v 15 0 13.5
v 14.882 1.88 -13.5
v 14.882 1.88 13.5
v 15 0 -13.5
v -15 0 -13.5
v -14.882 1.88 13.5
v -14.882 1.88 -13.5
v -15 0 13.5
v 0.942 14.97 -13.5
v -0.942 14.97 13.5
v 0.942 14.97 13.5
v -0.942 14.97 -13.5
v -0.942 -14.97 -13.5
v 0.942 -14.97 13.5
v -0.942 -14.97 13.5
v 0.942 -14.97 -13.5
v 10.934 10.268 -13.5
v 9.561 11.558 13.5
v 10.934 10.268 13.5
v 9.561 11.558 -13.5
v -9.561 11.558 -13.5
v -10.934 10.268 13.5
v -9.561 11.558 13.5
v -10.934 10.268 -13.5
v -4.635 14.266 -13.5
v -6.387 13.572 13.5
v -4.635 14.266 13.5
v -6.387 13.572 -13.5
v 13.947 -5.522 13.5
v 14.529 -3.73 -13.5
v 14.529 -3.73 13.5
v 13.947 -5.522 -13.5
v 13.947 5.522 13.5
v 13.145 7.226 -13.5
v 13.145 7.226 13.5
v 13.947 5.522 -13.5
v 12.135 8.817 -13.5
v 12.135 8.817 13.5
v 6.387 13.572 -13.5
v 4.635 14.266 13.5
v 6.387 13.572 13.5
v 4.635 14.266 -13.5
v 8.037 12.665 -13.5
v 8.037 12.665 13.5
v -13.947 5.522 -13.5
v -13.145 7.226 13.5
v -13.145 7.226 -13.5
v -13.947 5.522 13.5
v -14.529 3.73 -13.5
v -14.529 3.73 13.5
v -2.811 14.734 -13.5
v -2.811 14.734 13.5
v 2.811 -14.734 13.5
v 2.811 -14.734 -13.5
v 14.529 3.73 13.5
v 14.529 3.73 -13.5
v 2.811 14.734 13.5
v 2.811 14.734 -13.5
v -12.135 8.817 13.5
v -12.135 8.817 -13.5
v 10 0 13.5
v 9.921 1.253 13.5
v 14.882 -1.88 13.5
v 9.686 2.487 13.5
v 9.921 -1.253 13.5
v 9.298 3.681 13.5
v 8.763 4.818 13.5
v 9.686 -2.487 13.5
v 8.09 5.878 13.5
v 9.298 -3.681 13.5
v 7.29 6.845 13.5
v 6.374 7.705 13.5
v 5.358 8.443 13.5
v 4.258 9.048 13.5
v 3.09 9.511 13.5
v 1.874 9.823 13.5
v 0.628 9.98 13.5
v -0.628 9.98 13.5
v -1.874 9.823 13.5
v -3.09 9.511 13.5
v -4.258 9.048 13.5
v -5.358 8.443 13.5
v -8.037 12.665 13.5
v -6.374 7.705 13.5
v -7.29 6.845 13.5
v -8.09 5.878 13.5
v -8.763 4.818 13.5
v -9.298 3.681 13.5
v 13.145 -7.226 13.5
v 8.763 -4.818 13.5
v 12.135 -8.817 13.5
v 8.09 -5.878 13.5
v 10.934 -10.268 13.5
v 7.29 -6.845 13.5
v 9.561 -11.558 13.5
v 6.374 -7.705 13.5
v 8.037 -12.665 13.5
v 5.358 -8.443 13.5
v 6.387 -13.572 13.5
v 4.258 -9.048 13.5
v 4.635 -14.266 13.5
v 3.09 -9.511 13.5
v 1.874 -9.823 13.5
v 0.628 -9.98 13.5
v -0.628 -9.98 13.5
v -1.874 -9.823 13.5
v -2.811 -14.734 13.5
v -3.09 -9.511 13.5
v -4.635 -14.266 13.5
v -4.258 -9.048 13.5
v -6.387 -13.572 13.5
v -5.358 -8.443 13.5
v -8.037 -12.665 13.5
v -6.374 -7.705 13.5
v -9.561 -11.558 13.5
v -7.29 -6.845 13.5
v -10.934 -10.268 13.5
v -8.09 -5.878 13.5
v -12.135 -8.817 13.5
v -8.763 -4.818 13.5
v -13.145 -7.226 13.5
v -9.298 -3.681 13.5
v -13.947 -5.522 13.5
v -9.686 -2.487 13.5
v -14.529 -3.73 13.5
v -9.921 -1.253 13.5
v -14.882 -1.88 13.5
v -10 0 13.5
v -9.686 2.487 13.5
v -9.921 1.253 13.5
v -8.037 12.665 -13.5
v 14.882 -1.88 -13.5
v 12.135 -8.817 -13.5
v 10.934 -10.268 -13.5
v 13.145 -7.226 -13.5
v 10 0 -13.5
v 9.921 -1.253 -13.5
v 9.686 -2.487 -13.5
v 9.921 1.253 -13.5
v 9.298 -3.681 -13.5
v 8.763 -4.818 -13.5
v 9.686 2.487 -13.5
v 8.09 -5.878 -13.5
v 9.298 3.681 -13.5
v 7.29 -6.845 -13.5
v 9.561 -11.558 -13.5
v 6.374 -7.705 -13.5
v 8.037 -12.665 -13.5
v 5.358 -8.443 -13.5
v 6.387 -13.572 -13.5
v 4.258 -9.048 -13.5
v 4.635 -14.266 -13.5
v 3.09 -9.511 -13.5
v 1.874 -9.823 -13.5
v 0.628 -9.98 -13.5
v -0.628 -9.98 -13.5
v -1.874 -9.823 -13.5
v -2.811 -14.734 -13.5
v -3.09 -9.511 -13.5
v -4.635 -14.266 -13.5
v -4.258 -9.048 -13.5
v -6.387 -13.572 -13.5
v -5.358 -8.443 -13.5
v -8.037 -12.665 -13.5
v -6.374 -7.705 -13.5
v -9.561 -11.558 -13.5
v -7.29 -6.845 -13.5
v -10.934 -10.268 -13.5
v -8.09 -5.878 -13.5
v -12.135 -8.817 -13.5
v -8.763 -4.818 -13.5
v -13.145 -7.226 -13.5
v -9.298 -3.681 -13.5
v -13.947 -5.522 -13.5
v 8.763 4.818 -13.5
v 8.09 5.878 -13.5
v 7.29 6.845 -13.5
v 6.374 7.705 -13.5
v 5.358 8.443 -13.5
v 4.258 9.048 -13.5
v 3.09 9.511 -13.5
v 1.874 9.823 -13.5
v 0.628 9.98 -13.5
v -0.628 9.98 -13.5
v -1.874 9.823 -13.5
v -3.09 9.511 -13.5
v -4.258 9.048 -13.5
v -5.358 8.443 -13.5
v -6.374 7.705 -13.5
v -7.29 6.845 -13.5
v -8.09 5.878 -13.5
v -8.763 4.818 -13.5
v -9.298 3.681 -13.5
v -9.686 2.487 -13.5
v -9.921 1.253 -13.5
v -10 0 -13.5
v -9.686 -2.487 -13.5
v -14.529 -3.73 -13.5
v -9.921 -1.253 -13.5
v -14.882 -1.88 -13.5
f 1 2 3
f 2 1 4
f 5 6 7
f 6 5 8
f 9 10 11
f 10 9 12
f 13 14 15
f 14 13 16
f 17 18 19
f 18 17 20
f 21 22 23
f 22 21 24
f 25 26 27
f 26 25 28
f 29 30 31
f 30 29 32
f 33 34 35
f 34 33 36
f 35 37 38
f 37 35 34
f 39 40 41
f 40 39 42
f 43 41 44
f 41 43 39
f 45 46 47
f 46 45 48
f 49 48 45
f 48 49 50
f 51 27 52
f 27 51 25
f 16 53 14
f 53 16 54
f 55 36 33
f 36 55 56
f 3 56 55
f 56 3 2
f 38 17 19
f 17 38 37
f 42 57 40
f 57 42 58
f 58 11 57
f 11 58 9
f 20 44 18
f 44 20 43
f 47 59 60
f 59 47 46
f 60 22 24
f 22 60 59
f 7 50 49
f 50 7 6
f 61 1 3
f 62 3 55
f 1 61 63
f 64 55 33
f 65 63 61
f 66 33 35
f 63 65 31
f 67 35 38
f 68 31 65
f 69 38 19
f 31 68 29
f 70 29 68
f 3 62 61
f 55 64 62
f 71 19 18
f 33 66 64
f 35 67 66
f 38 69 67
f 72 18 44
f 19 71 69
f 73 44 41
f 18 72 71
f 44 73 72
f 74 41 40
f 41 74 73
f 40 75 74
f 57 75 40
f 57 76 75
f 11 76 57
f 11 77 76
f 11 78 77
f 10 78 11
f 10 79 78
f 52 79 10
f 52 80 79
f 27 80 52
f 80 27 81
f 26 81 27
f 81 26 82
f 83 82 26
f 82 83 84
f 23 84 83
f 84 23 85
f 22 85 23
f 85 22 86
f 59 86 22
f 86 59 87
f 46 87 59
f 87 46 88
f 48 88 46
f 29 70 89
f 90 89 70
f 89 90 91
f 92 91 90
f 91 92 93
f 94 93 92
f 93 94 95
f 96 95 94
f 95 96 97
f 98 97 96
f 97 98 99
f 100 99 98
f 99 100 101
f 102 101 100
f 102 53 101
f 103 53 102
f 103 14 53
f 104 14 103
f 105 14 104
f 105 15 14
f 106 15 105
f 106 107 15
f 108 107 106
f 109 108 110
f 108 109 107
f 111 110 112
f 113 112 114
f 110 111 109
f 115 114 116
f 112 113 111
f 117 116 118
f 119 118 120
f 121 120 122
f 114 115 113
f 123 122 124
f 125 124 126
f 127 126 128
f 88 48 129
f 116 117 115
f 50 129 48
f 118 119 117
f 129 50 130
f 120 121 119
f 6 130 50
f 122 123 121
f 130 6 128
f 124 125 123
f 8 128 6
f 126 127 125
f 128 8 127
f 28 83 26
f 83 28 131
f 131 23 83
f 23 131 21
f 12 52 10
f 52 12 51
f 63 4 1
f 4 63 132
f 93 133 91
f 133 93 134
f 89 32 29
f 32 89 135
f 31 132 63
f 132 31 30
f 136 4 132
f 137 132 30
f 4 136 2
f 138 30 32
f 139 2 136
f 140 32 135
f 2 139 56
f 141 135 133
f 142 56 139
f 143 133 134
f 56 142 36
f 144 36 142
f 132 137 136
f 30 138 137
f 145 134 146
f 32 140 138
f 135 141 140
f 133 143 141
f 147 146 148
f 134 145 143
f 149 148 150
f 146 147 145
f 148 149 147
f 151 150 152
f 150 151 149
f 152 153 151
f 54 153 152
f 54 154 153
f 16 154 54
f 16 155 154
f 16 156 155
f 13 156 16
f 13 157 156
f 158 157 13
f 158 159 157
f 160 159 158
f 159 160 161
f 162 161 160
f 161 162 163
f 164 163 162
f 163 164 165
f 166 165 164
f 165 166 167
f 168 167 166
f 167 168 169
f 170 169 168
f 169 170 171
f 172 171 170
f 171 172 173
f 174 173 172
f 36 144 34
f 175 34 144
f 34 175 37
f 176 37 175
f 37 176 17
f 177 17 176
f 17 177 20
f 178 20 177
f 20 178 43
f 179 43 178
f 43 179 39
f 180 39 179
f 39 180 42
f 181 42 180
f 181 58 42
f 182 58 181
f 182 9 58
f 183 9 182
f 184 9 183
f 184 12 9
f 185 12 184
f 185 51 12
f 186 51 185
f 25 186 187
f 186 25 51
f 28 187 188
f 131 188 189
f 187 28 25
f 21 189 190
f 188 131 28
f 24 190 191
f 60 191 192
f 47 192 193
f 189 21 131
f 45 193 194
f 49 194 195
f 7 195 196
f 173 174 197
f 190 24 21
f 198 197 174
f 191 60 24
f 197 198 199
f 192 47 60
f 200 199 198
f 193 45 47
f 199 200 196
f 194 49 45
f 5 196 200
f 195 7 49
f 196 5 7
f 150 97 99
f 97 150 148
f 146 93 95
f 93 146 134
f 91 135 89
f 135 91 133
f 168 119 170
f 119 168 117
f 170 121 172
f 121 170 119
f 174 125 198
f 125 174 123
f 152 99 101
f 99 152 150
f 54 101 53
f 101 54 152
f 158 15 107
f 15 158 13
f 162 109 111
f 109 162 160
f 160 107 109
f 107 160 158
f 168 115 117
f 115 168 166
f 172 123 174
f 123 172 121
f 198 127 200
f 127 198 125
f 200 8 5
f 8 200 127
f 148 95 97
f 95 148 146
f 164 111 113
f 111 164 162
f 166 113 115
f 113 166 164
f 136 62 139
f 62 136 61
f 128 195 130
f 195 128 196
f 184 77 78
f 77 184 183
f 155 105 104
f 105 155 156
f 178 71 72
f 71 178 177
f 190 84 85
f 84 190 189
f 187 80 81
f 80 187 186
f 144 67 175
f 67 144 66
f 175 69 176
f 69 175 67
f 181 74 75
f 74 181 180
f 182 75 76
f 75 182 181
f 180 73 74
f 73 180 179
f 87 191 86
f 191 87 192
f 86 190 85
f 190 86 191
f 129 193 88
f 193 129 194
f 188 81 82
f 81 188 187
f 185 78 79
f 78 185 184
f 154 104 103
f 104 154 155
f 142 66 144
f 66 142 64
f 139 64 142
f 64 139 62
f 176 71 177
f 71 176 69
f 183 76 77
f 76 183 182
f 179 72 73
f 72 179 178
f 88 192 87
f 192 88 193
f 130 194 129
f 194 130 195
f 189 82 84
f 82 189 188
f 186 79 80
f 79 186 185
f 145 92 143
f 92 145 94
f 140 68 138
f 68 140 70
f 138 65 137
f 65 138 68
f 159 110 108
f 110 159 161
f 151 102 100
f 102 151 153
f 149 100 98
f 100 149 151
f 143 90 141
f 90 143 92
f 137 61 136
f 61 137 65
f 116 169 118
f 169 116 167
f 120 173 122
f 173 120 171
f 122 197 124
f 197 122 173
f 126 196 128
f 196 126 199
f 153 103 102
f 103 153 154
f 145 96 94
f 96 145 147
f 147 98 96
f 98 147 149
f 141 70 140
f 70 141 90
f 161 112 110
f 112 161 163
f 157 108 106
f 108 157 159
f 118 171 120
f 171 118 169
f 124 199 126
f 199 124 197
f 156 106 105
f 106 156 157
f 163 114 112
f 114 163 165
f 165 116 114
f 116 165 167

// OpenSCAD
$fn = 50;


difference() {
	union() {
		translate(v = [0, 0, -13.5000000000]) {
			cylinder(h = 27, r = 15.0000000000);
		}
	}
	union() {
		translate(v = [0, 0, -100.0000000000]) {
			cylinder(h = 200, r = 10);
		}
	}
}
